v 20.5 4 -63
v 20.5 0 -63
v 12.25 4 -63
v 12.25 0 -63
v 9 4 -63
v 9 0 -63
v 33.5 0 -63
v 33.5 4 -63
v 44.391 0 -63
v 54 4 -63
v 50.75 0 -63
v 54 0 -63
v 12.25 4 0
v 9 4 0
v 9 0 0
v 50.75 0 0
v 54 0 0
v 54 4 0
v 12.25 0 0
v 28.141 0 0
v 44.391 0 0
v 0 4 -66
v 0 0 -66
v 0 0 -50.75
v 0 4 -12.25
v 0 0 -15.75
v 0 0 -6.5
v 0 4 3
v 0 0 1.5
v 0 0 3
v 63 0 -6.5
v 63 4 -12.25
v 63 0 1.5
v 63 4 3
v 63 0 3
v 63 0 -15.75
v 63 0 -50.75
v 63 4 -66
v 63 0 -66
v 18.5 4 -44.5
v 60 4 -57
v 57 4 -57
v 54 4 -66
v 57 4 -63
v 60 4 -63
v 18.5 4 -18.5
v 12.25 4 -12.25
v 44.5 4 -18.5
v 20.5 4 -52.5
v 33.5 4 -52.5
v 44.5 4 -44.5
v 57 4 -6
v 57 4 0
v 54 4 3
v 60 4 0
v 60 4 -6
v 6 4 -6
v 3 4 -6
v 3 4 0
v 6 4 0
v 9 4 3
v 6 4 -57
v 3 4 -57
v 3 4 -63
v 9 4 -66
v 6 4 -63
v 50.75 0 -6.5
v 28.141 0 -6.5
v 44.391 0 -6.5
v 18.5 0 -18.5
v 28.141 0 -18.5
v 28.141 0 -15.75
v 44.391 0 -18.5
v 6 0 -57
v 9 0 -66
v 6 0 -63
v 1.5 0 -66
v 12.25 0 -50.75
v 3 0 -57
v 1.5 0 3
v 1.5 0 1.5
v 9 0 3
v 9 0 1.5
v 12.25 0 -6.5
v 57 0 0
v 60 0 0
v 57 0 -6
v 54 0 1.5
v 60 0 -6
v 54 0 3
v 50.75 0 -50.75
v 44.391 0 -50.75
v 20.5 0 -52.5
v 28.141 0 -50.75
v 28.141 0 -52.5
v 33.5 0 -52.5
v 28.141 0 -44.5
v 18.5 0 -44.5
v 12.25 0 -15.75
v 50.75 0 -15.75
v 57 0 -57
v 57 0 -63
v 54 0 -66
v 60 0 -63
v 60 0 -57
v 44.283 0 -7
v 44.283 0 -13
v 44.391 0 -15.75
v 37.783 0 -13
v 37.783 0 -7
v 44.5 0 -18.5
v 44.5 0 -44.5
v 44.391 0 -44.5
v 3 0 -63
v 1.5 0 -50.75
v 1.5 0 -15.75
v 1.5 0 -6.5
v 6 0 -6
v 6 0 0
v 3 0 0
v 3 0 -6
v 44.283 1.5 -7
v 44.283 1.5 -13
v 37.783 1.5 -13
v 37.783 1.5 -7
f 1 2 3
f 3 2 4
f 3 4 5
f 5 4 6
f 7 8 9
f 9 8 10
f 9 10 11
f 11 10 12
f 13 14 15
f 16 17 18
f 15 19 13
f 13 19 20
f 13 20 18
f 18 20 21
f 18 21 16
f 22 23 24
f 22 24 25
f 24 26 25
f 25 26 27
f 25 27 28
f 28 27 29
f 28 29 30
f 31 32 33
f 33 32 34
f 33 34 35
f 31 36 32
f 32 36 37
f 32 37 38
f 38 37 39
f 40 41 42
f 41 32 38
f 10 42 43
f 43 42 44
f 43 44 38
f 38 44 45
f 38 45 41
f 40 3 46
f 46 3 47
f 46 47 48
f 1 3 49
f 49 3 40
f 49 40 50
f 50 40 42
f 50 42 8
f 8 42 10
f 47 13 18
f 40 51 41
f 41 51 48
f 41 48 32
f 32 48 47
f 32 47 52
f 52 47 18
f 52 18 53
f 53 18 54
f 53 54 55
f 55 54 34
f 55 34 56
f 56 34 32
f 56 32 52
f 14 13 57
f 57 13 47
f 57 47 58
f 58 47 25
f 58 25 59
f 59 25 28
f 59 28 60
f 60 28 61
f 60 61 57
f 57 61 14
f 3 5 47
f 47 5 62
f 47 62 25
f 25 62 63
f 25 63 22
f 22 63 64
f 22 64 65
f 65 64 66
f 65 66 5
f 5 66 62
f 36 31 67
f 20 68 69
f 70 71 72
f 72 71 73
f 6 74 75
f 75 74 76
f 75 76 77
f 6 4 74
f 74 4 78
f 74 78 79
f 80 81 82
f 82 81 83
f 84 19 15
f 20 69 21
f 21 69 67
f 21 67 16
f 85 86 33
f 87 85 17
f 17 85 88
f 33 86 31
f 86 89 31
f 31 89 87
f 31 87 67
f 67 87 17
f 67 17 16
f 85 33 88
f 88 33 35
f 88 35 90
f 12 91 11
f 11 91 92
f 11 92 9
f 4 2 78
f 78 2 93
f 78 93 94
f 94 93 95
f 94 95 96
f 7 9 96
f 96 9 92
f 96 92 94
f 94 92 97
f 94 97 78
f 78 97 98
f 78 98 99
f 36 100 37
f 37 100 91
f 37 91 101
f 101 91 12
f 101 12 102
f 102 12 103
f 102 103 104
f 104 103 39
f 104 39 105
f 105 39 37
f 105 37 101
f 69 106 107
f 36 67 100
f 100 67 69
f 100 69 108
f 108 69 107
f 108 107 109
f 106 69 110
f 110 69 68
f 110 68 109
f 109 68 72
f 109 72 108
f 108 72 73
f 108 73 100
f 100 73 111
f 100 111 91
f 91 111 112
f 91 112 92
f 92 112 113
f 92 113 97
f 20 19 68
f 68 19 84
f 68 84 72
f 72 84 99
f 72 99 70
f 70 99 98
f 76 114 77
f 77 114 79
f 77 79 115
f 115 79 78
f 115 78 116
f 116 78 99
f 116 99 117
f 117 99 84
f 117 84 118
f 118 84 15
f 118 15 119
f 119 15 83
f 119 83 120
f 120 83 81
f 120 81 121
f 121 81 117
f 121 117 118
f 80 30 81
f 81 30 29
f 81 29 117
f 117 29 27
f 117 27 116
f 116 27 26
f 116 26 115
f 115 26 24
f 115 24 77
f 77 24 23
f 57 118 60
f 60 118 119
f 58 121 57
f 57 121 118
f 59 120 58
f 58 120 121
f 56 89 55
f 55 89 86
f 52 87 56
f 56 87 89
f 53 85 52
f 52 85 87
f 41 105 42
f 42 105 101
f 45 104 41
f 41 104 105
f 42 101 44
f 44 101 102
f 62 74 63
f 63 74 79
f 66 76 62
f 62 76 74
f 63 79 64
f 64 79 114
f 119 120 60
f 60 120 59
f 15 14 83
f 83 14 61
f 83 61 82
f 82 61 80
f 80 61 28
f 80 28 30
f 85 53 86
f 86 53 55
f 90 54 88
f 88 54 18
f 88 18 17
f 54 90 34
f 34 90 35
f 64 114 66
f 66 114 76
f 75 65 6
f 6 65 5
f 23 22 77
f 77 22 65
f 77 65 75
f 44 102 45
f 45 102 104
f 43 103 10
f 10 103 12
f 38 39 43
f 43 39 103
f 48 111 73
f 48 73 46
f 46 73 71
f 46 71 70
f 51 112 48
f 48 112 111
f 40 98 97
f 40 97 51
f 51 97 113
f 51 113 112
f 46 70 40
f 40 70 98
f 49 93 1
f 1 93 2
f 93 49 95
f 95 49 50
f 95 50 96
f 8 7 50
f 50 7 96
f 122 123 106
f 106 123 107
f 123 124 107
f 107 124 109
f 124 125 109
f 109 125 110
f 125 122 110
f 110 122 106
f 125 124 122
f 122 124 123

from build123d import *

# Parameters (mm, degrees)
SKETCH1_W           = 63
SKETCH1_H           = 63
BOSS_EXTRUDE1_DEPTH = 4
SKETCH2_W           = 3
SKETCH2_H           = 6
CUT_EXTRUDE1_DEPTH  = 4
SKETCH3_W           = 9
SKETCH3_H           = 4
BOSS_EXTRUDE2_DEPTH = 3
SKETCH4_W           = 9
SKETCH4_H           = 4
BOSS_EXTRUDE3_DEPTH = 3
SKETCH5_W           = 26
SKETCH5_H           = 26
CUT_EXTRUDE2_DEPTH  = 4
SKETCH6_W           = 13
SKETCH6_H           = 10.5
CUT_EXTRUDE3_DEPTH  = 4
SKETCH8_W           = 6.5
SKETCH8_H           = 6
CUT_EXTRUDE4_DEPTH  = 1.5


with BuildPart() as part:
    # Sketch1 → Boss-Extrude1 (new body)
    with BuildSketch(Plane(origin=(0, 0, 0), x_dir=(1, 0, 0), z_dir=(0, 1, 0))):
        with Locations((31.5, 31.5)):
            Rectangle(SKETCH1_W, SKETCH1_H)
    extrude(amount=BOSS_EXTRUDE1_DEPTH)

    # Sketch2 → Cut-Extrude1 (cut)
    with BuildSketch(Plane(origin=(0, 4, 0), x_dir=(1, 0, 0), z_dir=(0, 1, 0))):
        with Locations((4.5, 3)):
            Rectangle(SKETCH2_W, SKETCH2_H)
        with Locations((58.5, 3)):
            Rectangle(SKETCH2_W, SKETCH2_H)
        with Locations((58.5, 60)):
            Rectangle(SKETCH2_W, SKETCH2_H)
        with Locations((4.5, 60)):
            Rectangle(SKETCH2_W, SKETCH2_H)
    extrude(amount=-CUT_EXTRUDE1_DEPTH, mode=Mode.SUBTRACT)

    # Sketch3 → Boss-Extrude2 (add)
    with BuildSketch(Plane.XY):
        with Locations((4.5, 2)):
            Rectangle(SKETCH3_W, SKETCH3_H)
        with Locations((58.5, 2)):
            Rectangle(SKETCH3_W, SKETCH3_H)
    extrude(amount=BOSS_EXTRUDE2_DEPTH)

    # Sketch4 → Boss-Extrude3 (add)
    with BuildSketch(Plane(origin=(0, 0, -63), x_dir=(-1, 0, 0), z_dir=(0, 0, -1))):
        with Locations((-4.5, 2)):
            Rectangle(SKETCH4_W, SKETCH4_H)
        with Locations((-58.5, 2)):
            Rectangle(SKETCH4_W, SKETCH4_H)
    extrude(amount=BOSS_EXTRUDE3_DEPTH)

    # Sketch5 → Cut-Extrude2 (cut)
    with BuildSketch(Plane(origin=(0, 4, 0), x_dir=(1, 0, 0), z_dir=(0, 1, 0))):
        with Locations((31.5, 31.5)):
            Rectangle(SKETCH5_W, SKETCH5_H)
    extrude(amount=-CUT_EXTRUDE2_DEPTH, mode=Mode.SUBTRACT)

    # Sketch6 → Cut-Extrude3 (cut)
    with BuildSketch(Plane(origin=(0, 4, 0), x_dir=(1, 0, 0), z_dir=(0, 1, 0))):
        with Locations((27, 57.75)):
            Rectangle(SKETCH6_W, SKETCH6_H)
    extrude(amount=-CUT_EXTRUDE3_DEPTH, mode=Mode.SUBTRACT)

    # Sketch8 → Cut-Extrude4 (cut)
    with BuildSketch(Plane.XZ):
        with Locations((41.032593784, -10)):
            Rectangle(SKETCH8_W, SKETCH8_H)
    extrude(amount=-CUT_EXTRUDE4_DEPTH, mode=Mode.SUBTRACT)


solid = part.part
